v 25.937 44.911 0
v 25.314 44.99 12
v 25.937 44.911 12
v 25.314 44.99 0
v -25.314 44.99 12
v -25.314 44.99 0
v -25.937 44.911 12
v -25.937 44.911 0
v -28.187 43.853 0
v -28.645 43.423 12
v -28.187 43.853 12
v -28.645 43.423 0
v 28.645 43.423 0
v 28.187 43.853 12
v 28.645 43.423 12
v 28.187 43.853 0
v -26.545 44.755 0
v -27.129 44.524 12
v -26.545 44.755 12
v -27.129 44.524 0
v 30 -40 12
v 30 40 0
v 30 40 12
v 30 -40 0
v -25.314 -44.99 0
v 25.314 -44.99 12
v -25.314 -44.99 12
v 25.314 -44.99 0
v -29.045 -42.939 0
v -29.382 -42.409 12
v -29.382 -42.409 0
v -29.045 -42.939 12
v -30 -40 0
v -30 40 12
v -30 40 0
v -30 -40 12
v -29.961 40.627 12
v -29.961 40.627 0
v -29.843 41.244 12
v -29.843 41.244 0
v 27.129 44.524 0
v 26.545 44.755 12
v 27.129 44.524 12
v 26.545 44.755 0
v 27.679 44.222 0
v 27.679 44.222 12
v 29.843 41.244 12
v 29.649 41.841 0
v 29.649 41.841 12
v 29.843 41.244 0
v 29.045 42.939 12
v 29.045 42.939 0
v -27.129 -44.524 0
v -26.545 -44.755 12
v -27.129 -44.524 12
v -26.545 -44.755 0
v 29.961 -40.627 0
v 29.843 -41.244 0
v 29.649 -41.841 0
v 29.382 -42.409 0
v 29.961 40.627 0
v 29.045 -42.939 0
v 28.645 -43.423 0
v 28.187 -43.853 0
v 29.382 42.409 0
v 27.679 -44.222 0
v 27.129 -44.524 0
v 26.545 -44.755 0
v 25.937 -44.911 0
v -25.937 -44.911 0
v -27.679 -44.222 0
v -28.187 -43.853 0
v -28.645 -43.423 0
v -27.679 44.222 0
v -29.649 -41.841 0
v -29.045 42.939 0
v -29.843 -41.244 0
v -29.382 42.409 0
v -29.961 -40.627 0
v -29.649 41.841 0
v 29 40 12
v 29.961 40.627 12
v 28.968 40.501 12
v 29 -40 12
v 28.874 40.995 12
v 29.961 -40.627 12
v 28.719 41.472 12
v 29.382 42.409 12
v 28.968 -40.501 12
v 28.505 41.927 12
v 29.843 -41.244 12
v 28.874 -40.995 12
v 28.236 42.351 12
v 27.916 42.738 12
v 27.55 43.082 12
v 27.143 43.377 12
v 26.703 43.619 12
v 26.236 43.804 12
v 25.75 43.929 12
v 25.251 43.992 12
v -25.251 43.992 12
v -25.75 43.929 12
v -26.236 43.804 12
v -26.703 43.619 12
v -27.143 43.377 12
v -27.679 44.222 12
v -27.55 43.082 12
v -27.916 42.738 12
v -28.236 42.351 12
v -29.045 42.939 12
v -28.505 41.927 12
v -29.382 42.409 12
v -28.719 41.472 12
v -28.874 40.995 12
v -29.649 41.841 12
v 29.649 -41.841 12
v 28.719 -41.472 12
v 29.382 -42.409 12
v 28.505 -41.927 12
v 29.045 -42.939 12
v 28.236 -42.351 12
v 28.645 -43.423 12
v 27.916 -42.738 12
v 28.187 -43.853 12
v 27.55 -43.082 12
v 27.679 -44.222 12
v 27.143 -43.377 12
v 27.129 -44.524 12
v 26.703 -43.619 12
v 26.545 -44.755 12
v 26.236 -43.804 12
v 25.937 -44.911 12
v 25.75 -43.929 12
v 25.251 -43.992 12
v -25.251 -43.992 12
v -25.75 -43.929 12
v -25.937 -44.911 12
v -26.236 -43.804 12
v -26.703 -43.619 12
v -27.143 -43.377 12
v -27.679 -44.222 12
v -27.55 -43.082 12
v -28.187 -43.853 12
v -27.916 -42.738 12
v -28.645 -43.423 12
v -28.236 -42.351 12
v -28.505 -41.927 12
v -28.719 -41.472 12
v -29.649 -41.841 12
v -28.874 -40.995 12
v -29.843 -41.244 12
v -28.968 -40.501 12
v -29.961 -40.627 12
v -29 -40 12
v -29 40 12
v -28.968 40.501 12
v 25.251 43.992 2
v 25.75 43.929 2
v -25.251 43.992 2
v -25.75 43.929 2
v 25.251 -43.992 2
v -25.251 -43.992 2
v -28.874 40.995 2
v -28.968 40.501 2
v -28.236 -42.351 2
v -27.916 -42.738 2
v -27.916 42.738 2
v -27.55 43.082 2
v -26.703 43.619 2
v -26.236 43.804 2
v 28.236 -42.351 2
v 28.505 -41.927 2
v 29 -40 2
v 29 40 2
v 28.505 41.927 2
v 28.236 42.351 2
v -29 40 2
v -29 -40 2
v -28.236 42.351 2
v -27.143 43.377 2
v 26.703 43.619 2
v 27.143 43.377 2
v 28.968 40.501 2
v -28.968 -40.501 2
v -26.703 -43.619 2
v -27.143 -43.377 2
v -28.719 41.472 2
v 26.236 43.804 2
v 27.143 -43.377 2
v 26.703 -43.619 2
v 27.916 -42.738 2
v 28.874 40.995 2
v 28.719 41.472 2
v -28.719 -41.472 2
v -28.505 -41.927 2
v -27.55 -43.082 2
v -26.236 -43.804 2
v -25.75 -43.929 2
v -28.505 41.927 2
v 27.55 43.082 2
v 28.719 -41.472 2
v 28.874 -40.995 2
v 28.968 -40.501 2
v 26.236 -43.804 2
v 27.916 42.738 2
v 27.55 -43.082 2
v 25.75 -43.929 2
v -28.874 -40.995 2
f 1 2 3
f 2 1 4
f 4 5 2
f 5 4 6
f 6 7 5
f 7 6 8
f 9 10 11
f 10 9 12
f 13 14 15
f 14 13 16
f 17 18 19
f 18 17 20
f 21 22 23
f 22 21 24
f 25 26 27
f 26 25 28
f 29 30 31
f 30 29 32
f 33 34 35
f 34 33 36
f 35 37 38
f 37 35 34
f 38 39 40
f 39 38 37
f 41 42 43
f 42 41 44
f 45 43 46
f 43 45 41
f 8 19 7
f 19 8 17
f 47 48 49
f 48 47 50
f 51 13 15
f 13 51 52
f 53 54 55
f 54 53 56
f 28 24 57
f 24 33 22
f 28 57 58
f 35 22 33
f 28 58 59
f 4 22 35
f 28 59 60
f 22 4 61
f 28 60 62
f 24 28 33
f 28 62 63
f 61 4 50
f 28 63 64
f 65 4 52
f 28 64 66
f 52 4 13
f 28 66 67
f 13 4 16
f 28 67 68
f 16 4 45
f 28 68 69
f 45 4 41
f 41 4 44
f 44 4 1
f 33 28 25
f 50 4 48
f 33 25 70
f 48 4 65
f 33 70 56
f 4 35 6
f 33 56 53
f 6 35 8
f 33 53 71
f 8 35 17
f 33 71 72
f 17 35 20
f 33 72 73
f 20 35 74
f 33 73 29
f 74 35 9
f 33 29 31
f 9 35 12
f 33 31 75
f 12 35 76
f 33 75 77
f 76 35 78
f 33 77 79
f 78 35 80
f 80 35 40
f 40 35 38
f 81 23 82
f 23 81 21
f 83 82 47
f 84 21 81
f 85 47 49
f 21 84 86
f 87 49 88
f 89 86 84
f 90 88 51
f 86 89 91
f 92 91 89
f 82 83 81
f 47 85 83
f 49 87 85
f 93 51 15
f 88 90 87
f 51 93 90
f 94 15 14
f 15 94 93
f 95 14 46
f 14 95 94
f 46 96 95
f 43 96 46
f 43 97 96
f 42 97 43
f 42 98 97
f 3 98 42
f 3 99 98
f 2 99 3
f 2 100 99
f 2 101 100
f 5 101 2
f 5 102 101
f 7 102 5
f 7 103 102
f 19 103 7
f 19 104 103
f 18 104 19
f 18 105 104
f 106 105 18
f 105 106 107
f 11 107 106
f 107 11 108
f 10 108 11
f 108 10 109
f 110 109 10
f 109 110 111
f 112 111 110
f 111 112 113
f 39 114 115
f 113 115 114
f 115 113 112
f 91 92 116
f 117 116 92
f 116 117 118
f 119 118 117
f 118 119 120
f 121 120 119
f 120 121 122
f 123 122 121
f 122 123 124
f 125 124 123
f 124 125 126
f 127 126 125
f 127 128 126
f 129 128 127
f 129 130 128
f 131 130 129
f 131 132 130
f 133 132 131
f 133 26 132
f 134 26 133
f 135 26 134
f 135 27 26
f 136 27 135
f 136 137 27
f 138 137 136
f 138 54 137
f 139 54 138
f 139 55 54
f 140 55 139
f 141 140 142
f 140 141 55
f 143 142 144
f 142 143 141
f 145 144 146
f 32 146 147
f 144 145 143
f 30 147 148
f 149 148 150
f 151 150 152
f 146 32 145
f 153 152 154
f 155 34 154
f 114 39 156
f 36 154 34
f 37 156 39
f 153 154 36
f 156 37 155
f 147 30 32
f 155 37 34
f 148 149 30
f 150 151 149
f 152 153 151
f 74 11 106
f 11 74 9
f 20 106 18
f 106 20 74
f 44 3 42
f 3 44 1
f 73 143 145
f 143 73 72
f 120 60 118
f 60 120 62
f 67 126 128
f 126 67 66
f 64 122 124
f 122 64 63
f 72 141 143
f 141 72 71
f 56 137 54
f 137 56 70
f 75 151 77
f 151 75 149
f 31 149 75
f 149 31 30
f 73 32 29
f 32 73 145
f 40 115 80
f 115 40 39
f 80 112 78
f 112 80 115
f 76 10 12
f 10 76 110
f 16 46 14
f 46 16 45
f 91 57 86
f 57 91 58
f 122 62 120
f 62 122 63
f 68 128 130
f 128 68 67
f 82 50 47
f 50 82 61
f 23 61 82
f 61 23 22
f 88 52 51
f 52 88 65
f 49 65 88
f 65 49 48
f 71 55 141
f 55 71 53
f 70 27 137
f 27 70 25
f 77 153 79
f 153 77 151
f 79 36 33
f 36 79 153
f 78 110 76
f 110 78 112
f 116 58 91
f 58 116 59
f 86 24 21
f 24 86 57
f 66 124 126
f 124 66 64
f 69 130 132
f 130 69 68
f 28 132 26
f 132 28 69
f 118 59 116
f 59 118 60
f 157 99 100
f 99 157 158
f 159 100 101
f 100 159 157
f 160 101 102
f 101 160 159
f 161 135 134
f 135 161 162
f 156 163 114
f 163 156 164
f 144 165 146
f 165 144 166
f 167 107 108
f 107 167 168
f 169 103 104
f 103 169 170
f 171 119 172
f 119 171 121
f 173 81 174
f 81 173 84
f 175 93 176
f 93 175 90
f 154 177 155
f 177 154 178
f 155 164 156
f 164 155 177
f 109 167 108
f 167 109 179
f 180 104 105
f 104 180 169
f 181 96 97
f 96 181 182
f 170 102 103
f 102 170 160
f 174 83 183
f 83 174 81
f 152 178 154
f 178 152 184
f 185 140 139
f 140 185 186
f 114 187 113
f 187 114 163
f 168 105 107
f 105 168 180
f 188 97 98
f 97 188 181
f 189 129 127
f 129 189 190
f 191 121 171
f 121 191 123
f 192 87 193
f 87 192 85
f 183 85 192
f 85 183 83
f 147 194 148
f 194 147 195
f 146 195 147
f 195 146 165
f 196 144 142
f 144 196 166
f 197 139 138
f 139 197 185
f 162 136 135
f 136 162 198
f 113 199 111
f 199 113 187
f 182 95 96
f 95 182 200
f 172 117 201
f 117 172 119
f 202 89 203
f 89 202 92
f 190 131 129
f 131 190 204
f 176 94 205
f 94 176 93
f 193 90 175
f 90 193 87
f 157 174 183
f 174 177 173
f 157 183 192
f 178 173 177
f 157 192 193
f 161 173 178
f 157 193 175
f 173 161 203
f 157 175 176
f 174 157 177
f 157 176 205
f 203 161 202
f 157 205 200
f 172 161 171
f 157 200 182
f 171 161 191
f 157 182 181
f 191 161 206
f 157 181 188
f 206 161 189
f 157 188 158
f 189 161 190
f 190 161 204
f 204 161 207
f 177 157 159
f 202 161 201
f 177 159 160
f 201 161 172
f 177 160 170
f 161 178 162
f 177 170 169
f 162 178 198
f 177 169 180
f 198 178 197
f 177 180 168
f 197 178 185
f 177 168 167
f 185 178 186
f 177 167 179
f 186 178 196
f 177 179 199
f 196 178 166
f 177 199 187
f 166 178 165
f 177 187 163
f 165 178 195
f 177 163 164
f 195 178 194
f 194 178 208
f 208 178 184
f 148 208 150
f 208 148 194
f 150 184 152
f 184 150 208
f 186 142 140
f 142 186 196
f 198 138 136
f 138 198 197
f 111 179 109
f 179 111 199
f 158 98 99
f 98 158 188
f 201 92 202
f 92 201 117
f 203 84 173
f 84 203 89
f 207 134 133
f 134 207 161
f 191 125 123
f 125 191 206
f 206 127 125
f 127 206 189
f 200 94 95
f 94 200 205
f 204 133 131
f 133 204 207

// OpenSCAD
$fn = 50;


difference() {
	union() {
		hull() {
			translate(v = [-25.0000000000, 40.0000000000, 0]) {
				cylinder(h = 12, r = 5);
			}
			translate(v = [25.0000000000, 40.0000000000, 0]) {
				cylinder(h = 12, r = 5);
			}
			translate(v = [-25.0000000000, -40.0000000000, 0]) {
				cylinder(h = 12, r = 5);
			}
			translate(v = [25.0000000000, -40.0000000000, 0]) {
				cylinder(h = 12, r = 5);
			}
		}
	}
	union() {
		translate(v = [0, 0, 2]) {
			hull() {
				translate(v = [-25.0000000000, 40.0000000000, 0]) {
					cylinder(h = 10, r = 4);
				}
				translate(v = [25.0000000000, 40.0000000000, 0]) {
					cylinder(h = 10, r = 4);
				}
				translate(v = [-25.0000000000, -40.0000000000, 0]) {
					cylinder(h = 10, r = 4);
				}
				translate(v = [25.0000000000, -40.0000000000, 0]) {
					cylinder(h = 10, r = 4);
				}
			}
		}
	}
}
